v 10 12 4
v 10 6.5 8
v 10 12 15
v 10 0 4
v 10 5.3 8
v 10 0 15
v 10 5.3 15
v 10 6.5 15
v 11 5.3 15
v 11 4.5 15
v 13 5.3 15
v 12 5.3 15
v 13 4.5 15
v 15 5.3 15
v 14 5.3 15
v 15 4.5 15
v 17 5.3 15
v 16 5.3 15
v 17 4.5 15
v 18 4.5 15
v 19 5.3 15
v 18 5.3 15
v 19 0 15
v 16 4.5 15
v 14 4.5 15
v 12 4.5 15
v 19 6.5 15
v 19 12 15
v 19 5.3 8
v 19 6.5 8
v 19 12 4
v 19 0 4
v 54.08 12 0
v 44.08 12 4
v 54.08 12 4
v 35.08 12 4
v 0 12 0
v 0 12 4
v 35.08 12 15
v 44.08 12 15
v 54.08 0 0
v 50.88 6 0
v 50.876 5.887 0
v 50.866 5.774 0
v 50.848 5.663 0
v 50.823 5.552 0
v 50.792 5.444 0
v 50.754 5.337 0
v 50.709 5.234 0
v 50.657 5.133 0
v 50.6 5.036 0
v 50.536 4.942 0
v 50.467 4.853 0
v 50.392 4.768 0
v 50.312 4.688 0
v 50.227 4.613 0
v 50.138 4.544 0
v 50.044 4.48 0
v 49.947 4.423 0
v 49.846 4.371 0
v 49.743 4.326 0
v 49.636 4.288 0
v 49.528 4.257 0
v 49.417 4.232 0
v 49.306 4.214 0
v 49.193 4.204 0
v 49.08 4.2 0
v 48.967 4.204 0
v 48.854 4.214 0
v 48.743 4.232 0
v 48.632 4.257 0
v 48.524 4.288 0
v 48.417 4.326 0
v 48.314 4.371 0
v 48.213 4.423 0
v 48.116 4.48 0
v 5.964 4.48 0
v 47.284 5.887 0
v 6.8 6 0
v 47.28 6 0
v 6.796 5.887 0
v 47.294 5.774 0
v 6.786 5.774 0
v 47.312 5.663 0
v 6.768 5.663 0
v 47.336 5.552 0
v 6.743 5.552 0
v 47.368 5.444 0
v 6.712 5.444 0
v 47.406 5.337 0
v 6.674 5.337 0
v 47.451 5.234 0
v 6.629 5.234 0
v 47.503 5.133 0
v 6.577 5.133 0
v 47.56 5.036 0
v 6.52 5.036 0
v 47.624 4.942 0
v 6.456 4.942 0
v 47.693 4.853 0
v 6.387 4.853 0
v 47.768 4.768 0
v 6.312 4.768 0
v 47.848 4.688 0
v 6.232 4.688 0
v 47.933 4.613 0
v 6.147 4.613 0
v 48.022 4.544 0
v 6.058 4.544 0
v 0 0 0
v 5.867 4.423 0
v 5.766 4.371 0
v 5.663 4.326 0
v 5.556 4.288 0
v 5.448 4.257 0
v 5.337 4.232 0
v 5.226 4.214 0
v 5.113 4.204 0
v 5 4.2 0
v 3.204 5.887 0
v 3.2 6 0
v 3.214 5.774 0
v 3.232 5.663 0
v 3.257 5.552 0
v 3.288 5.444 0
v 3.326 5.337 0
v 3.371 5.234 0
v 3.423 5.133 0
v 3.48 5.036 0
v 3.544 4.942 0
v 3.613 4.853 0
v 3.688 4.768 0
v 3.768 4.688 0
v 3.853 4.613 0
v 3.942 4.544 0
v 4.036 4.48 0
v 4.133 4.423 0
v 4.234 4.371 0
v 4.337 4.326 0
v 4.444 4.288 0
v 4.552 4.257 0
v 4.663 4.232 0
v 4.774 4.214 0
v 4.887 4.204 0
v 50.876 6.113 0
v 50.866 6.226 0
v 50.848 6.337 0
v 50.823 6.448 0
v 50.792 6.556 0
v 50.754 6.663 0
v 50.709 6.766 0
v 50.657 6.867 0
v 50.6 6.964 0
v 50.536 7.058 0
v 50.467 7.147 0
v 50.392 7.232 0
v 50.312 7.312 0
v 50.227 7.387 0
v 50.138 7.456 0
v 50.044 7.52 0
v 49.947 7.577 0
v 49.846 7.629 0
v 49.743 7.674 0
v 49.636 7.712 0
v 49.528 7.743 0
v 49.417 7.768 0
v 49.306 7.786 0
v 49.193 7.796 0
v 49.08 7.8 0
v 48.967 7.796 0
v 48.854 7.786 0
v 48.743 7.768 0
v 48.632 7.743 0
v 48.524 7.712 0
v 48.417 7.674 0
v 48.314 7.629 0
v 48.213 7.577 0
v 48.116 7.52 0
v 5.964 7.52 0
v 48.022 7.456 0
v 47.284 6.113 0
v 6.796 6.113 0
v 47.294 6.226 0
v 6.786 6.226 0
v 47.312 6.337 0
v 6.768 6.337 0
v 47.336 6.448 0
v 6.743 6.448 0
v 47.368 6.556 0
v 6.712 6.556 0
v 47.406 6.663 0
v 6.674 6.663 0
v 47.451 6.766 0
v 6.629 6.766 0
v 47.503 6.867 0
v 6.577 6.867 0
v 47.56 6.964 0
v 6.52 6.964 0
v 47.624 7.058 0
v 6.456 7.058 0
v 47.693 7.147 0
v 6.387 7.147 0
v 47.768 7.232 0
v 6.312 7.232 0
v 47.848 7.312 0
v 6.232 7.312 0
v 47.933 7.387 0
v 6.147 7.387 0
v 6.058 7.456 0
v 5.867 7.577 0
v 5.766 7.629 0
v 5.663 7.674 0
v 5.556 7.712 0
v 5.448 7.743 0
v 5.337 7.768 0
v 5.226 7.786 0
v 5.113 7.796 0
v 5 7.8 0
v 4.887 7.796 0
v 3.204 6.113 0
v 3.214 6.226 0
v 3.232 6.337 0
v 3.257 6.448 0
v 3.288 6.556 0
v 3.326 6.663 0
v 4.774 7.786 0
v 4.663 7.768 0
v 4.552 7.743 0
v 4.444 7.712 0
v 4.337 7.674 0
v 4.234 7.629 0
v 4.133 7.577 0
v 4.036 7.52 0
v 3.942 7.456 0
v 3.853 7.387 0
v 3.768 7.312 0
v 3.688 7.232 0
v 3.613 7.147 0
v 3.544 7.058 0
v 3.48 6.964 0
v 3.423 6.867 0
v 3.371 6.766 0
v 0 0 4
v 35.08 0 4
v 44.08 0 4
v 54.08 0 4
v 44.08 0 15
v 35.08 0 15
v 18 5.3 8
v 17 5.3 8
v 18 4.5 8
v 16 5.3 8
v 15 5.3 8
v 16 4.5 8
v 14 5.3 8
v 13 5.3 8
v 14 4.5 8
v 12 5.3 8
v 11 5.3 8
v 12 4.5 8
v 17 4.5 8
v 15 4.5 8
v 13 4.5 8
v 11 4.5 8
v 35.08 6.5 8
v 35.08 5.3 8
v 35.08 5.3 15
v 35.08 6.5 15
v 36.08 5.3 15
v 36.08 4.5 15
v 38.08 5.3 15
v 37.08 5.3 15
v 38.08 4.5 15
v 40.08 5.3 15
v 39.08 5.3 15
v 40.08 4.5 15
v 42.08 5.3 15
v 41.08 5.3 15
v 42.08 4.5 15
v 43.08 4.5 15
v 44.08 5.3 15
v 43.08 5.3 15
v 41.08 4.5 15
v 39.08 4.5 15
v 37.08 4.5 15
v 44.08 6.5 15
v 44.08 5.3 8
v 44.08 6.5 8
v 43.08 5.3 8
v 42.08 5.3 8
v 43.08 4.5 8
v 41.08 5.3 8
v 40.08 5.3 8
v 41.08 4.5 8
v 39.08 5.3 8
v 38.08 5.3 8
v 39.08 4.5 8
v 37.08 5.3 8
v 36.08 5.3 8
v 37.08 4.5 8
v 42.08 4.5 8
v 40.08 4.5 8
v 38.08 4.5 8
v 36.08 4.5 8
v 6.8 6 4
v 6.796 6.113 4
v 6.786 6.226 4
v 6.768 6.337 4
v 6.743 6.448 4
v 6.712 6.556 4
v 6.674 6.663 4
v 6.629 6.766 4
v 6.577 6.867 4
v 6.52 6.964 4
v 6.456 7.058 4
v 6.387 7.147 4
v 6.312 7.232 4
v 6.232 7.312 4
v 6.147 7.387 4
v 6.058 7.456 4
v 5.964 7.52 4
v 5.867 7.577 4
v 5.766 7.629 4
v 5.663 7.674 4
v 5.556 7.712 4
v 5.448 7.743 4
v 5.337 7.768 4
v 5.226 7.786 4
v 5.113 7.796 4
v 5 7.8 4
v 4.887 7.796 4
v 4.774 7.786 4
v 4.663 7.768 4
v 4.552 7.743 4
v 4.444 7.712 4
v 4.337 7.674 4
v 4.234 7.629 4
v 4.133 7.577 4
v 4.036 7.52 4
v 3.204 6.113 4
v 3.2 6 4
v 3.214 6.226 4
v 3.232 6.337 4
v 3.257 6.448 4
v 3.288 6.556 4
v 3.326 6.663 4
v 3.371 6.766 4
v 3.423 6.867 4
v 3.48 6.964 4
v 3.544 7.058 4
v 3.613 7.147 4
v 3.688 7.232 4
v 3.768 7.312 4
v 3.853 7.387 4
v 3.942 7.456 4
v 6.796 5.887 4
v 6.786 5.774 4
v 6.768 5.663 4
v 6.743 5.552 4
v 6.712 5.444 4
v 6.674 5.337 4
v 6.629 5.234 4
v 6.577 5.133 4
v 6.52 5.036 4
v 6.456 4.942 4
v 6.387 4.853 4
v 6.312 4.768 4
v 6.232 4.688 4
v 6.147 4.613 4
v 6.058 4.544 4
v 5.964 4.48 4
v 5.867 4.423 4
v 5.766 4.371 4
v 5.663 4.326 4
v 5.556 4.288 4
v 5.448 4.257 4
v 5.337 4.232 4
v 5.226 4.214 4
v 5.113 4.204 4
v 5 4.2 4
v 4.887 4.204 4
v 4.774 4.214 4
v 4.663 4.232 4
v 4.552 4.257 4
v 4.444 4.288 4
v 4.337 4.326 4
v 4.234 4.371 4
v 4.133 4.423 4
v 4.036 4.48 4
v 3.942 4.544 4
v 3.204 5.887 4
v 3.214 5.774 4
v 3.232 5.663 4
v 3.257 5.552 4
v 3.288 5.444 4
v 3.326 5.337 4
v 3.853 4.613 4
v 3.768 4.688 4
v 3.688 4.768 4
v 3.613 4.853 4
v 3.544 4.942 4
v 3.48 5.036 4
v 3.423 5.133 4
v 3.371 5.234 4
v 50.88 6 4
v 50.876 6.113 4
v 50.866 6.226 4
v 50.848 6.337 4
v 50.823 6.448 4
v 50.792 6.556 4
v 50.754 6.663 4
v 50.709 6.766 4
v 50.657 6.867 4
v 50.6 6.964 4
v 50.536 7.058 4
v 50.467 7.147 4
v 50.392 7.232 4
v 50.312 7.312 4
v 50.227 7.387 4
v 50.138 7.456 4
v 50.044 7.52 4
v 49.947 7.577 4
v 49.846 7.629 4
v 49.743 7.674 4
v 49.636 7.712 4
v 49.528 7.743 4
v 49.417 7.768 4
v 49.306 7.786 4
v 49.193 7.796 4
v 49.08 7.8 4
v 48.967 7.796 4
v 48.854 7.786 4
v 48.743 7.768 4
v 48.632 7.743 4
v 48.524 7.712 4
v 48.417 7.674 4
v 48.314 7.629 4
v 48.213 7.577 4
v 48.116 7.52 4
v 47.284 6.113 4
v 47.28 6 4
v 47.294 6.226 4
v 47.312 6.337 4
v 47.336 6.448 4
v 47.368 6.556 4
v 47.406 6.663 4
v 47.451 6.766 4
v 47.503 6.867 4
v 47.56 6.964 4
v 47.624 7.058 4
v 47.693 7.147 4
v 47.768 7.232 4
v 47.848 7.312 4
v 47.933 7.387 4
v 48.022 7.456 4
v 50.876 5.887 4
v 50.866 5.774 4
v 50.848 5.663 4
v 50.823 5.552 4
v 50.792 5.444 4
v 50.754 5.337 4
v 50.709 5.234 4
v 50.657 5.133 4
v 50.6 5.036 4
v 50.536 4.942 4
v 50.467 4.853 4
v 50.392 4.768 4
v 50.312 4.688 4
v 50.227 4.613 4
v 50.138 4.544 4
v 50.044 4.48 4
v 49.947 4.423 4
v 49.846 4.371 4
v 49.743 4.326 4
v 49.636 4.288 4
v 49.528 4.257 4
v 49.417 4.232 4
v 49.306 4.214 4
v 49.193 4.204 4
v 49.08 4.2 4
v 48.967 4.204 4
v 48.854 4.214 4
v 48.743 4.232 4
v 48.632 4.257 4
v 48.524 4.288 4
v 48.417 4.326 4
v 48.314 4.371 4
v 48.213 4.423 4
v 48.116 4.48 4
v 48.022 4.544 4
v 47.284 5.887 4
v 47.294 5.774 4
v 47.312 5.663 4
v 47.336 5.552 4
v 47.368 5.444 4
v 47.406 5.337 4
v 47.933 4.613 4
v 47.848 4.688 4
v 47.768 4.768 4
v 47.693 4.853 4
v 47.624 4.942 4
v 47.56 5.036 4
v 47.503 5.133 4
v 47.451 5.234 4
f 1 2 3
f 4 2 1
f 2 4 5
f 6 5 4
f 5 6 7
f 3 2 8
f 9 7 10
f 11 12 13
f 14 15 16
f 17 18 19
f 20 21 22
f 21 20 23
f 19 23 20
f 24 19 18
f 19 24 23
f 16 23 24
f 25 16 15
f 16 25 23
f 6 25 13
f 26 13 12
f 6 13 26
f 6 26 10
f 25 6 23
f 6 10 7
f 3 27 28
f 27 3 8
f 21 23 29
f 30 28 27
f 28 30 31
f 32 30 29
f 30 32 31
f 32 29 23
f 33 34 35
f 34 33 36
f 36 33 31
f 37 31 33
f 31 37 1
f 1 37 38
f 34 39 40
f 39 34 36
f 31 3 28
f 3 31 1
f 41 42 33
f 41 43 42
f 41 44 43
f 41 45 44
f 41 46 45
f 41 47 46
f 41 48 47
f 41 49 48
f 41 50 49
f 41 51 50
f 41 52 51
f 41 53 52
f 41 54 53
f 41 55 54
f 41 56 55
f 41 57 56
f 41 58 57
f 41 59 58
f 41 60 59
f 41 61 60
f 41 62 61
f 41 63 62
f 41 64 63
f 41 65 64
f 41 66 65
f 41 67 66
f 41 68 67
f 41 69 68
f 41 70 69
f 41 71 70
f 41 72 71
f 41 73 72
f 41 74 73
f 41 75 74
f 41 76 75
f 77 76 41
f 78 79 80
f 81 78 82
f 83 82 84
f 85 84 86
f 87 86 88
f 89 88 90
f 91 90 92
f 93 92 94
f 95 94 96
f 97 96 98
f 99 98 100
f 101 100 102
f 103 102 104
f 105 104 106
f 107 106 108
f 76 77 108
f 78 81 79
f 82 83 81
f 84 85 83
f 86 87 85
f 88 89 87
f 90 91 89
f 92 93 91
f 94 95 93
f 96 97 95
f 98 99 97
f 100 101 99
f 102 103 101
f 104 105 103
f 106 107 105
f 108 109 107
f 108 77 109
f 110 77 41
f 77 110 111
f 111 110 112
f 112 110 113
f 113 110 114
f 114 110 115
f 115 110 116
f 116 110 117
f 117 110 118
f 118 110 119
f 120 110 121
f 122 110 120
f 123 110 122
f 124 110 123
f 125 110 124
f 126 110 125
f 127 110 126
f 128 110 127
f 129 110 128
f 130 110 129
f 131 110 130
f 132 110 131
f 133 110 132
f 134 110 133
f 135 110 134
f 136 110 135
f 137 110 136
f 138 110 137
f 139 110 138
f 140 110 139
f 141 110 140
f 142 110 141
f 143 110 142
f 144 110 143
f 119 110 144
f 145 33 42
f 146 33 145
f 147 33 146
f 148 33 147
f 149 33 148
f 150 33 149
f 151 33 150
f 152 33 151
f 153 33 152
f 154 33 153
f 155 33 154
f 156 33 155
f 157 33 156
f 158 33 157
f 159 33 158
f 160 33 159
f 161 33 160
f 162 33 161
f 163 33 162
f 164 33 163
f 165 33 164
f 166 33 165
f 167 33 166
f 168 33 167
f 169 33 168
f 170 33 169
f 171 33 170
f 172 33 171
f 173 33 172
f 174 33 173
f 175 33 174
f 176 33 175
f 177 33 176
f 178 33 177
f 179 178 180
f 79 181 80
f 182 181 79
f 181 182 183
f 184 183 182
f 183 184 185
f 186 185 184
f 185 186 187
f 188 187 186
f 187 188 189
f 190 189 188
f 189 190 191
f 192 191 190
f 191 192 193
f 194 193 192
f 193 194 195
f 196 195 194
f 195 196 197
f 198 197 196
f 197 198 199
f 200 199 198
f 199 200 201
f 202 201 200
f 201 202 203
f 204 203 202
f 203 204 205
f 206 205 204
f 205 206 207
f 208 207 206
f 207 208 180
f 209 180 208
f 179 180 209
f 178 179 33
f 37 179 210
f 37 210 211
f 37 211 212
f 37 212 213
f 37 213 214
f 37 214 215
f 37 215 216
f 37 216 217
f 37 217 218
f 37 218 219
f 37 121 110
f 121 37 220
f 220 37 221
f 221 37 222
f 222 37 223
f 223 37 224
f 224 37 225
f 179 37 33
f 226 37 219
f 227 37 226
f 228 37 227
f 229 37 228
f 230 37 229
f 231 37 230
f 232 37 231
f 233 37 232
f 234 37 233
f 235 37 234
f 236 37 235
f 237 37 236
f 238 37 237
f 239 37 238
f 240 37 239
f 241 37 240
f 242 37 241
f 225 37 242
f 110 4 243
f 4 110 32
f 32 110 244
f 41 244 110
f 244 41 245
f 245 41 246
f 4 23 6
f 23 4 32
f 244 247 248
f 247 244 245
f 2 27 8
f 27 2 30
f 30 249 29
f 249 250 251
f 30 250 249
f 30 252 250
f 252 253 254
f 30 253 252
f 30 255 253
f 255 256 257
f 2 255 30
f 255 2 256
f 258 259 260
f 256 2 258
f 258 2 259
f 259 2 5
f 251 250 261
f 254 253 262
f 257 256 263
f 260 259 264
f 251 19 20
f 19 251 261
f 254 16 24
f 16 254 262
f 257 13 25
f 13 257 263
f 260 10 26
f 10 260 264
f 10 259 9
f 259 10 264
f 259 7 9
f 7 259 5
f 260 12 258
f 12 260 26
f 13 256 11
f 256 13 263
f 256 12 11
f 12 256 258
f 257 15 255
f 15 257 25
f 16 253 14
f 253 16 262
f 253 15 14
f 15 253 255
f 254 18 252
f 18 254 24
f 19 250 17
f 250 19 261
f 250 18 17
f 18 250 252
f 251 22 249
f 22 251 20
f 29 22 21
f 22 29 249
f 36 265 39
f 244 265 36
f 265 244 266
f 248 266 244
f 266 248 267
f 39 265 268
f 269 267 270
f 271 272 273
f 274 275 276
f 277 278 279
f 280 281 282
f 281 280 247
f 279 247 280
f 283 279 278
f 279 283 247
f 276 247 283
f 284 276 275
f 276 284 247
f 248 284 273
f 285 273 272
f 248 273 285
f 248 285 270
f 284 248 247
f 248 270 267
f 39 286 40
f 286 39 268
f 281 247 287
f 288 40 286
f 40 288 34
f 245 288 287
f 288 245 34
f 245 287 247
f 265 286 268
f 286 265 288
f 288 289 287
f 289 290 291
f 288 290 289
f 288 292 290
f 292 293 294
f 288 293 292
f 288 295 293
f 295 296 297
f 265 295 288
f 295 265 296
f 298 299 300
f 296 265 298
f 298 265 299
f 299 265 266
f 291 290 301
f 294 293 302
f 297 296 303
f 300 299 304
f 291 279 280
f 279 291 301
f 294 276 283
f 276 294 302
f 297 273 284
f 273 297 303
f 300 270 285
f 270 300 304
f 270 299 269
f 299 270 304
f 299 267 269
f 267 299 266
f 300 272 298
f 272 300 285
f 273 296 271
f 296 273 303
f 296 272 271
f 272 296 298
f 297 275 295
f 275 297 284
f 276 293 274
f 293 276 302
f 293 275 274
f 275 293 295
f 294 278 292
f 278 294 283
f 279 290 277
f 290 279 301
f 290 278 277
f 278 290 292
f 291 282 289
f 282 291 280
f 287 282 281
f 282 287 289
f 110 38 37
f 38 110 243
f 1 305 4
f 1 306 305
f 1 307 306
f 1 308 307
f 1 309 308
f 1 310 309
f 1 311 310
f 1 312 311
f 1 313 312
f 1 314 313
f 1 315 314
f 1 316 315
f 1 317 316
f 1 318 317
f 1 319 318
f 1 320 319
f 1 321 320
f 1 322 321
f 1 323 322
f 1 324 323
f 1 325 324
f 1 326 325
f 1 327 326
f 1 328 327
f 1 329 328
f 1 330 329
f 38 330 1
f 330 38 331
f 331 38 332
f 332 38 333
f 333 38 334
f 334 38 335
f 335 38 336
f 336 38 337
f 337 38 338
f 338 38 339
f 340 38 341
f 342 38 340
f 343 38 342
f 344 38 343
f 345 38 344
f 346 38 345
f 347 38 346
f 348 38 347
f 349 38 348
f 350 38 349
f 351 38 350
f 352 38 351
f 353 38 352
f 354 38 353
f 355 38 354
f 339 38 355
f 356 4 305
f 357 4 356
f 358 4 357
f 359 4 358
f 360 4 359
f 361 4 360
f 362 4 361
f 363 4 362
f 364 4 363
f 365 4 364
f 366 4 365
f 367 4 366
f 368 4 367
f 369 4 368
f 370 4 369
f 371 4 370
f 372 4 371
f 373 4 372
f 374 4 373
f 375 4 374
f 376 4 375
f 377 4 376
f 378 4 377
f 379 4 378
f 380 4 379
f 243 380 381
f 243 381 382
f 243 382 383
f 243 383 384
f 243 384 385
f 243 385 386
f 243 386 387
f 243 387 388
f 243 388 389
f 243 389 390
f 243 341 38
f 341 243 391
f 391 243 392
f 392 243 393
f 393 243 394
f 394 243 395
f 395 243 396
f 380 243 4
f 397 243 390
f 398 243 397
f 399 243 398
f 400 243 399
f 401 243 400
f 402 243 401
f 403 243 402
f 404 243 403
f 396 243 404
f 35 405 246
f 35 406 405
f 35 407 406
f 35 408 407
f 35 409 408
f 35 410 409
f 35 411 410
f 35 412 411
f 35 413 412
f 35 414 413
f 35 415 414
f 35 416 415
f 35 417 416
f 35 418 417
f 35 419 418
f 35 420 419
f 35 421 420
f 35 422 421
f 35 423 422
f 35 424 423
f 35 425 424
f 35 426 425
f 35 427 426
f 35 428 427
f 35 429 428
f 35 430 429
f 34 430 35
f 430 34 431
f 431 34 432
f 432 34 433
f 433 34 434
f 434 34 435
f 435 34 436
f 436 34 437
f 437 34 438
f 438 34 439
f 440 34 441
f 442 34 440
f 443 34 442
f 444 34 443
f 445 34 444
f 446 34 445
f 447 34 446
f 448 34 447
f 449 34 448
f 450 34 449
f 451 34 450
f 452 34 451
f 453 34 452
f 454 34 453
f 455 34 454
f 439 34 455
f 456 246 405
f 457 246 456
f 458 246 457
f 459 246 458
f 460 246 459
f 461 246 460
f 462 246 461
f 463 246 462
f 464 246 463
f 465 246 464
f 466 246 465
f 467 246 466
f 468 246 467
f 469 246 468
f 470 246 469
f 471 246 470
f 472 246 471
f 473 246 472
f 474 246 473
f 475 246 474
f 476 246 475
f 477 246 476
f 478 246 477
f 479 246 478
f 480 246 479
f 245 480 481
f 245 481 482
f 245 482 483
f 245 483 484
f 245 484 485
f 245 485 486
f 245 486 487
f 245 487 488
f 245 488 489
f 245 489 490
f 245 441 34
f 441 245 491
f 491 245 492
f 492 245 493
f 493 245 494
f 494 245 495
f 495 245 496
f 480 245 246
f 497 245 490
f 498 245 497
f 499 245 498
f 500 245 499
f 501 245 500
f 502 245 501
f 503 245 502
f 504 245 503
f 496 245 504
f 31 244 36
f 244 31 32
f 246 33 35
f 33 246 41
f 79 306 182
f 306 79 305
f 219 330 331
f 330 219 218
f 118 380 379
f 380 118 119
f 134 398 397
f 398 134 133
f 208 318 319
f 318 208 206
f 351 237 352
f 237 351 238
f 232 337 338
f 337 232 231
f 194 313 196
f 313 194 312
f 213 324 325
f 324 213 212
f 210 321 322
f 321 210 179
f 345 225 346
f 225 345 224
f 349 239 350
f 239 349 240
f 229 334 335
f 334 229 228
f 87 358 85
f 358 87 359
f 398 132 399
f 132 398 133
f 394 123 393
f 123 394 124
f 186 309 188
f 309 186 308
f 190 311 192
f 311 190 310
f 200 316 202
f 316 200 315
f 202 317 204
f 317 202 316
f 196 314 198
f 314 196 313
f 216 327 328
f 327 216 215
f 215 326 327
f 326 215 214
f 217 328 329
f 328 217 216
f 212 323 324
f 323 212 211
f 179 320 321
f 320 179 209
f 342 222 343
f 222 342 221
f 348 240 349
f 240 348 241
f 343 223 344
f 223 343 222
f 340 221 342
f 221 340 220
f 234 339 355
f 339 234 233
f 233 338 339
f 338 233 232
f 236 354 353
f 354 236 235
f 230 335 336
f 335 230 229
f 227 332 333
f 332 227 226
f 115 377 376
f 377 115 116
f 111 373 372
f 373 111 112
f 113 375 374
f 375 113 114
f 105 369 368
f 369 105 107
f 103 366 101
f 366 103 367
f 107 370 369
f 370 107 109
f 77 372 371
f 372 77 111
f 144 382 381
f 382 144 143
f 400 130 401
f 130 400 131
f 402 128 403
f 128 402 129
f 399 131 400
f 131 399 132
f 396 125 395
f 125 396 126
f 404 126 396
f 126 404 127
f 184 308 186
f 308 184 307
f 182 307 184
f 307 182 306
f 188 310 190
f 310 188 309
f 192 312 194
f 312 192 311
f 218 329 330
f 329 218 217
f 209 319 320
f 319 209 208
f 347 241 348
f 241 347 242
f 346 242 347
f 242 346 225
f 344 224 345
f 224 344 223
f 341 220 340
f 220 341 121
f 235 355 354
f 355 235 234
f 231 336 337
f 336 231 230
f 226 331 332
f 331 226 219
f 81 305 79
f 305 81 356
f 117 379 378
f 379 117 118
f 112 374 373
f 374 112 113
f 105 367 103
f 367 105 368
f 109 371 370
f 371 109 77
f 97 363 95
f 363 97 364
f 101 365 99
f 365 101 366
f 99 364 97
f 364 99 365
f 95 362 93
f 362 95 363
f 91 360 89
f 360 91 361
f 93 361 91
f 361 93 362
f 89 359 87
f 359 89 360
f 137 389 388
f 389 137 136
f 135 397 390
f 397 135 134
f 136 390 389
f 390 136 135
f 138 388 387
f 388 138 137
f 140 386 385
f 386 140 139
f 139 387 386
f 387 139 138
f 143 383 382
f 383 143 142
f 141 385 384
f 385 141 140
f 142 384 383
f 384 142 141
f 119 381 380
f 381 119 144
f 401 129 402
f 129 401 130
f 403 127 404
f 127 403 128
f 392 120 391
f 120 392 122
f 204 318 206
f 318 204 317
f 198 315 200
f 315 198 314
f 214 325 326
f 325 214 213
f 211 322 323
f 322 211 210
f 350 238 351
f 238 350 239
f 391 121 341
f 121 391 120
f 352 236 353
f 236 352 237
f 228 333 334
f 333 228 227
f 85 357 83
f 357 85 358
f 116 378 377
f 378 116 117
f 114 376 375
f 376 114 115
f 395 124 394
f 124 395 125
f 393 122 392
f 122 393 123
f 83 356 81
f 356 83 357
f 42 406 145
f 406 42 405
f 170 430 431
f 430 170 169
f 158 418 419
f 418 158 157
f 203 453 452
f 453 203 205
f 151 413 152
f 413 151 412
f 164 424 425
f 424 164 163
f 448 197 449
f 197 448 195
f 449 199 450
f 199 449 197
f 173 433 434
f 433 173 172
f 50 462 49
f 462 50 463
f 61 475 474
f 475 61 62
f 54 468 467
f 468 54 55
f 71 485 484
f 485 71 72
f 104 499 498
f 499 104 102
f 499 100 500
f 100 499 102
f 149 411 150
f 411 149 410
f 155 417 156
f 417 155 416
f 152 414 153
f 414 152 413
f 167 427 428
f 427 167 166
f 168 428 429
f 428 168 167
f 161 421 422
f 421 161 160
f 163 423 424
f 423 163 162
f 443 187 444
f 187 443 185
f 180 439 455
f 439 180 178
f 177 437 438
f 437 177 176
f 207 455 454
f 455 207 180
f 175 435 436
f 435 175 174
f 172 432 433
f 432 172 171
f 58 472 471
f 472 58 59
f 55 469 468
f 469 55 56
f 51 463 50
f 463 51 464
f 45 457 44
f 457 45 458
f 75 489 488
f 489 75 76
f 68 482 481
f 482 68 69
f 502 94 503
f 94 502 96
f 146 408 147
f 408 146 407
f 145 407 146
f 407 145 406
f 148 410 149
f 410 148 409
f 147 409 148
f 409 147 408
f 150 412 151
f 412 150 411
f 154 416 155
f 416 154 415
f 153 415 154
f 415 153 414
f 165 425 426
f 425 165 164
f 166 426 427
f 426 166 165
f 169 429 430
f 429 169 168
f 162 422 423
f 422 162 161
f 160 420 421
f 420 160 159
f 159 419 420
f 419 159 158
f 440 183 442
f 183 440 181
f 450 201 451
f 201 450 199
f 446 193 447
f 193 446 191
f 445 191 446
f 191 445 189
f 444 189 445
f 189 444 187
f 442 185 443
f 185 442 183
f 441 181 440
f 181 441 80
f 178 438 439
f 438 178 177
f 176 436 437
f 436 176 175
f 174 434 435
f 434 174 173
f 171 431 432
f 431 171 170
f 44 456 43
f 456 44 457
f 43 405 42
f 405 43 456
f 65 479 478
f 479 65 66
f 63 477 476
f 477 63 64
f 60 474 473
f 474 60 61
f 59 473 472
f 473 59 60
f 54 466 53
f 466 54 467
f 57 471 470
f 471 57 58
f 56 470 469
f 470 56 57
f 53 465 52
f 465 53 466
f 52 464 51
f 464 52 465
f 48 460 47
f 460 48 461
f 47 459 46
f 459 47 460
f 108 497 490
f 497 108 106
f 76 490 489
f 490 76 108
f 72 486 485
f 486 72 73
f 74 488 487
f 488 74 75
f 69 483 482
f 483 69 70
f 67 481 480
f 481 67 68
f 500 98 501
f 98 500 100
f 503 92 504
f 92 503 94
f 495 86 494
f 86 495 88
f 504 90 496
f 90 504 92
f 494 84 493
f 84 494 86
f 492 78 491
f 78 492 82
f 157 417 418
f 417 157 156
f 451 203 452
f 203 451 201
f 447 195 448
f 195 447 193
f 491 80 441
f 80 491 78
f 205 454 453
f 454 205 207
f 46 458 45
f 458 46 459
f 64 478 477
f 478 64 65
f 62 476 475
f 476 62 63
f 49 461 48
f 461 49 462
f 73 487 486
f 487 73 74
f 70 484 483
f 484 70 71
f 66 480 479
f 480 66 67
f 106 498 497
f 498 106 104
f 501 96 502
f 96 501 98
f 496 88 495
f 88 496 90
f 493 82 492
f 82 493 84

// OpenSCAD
L=24.04*2+6;
e=4;
W=12;
$fn=100;

module gripGT2(H,zi)
{
    
    difference()
    {
        cube([9,12,H]);
        translate([-1,11/2-1,H-zi]) cube([12,2,zi+2]);
    }
    translate([0,11/2-1,H-zi]) cube([1,0.8,zi]);
    translate([2,11/2-1,H-zi]) cube([1,0.8,zi]);
    translate([4,11/2-1,H-zi]) cube([1,0.8,zi]);
    translate([6,11/2-1,H-zi]) cube([1,0.8,zi]);
    translate([8,11/2-1,H-zi]) cube([1,0.8,zi]);
    
    
    
}

//translate([0,Lbase/2-6+6.36,6]) gripGT2(12+3,7);
 //   translate([Wbase-9,Lbase/2-6+6.36,6]) gripGT2(12+3,7);
difference()
{
union()
{
    cube([L,W,e]);
    translate([10,W/2-6,0]) gripGT2(12+3,7);
    translate([L-19,W/2-6,0]) gripGT2(12+3,7);
}
    translate([5,W/2,-1]) cylinder(h=30,d=3.6);
    translate([L-5,W/2,-1]) cylinder(h=30,d=3.6);
}
